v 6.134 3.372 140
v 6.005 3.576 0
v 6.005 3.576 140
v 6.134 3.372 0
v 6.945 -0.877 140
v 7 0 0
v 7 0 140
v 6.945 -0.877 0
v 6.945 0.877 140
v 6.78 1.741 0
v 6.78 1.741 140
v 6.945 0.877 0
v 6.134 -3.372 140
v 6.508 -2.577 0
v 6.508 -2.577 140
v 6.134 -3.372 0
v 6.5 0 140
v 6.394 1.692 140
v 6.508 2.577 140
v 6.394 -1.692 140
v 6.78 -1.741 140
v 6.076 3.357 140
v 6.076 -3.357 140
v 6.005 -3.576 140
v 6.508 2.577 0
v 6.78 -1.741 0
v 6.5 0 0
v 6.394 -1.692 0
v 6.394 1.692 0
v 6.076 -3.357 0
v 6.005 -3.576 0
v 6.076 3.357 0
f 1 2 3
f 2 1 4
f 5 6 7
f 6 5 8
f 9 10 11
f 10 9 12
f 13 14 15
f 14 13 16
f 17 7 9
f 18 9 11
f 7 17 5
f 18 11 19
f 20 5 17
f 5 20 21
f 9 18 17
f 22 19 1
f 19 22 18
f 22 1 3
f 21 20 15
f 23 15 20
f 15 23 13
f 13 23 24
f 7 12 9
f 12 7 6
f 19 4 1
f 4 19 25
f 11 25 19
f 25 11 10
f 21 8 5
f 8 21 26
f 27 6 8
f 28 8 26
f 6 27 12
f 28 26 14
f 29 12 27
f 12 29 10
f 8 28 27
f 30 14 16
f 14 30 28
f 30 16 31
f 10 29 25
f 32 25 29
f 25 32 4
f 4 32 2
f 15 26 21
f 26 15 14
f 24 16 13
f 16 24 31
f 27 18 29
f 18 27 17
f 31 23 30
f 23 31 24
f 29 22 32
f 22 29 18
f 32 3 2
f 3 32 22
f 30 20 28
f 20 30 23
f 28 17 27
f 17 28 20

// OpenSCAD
$fn = 50;


difference() {
	union() {
		cylinder(h = 140, r = 7.0000000000);
		translate(v = [-10.0000000000, 0, 0]) {
			cylinder(h = 140, r = 7.0000000000);
		}
	}
	union() {
		cylinder(h = 140, r = 3.2500000000);
		cylinder(h = 140, r = 1.8000000000);
		cylinder(h = 140, r = 1.8000000000);
		cylinder(h = 140, r = 1.8000000000);
		translate(v = [-14.5000000000, 0, 0]) {
			hull() {
				translate(v = [-3.7500000000, 0.0000000000, 0]) {
					cylinder(h = 140, r = 10.5000000000);
				}
				translate(v = [3.7500000000, 0.0000000000, 0]) {
					cylinder(h = 140, r = 10.5000000000);
				}
				translate(v = [-3.7500000000, -0.0000000000, 0]) {
					cylinder(h = 140, r = 10.5000000000);
				}
				translate(v = [3.7500000000, -0.0000000000, 0]) {
					cylinder(h = 140, r = 10.5000000000);
				}
			}
		}
		translate(v = [-7.0000000000, 0, 0.0000000000]) {
			cylinder(h = 140, r = 13.5000000000);
		}
	}
}
